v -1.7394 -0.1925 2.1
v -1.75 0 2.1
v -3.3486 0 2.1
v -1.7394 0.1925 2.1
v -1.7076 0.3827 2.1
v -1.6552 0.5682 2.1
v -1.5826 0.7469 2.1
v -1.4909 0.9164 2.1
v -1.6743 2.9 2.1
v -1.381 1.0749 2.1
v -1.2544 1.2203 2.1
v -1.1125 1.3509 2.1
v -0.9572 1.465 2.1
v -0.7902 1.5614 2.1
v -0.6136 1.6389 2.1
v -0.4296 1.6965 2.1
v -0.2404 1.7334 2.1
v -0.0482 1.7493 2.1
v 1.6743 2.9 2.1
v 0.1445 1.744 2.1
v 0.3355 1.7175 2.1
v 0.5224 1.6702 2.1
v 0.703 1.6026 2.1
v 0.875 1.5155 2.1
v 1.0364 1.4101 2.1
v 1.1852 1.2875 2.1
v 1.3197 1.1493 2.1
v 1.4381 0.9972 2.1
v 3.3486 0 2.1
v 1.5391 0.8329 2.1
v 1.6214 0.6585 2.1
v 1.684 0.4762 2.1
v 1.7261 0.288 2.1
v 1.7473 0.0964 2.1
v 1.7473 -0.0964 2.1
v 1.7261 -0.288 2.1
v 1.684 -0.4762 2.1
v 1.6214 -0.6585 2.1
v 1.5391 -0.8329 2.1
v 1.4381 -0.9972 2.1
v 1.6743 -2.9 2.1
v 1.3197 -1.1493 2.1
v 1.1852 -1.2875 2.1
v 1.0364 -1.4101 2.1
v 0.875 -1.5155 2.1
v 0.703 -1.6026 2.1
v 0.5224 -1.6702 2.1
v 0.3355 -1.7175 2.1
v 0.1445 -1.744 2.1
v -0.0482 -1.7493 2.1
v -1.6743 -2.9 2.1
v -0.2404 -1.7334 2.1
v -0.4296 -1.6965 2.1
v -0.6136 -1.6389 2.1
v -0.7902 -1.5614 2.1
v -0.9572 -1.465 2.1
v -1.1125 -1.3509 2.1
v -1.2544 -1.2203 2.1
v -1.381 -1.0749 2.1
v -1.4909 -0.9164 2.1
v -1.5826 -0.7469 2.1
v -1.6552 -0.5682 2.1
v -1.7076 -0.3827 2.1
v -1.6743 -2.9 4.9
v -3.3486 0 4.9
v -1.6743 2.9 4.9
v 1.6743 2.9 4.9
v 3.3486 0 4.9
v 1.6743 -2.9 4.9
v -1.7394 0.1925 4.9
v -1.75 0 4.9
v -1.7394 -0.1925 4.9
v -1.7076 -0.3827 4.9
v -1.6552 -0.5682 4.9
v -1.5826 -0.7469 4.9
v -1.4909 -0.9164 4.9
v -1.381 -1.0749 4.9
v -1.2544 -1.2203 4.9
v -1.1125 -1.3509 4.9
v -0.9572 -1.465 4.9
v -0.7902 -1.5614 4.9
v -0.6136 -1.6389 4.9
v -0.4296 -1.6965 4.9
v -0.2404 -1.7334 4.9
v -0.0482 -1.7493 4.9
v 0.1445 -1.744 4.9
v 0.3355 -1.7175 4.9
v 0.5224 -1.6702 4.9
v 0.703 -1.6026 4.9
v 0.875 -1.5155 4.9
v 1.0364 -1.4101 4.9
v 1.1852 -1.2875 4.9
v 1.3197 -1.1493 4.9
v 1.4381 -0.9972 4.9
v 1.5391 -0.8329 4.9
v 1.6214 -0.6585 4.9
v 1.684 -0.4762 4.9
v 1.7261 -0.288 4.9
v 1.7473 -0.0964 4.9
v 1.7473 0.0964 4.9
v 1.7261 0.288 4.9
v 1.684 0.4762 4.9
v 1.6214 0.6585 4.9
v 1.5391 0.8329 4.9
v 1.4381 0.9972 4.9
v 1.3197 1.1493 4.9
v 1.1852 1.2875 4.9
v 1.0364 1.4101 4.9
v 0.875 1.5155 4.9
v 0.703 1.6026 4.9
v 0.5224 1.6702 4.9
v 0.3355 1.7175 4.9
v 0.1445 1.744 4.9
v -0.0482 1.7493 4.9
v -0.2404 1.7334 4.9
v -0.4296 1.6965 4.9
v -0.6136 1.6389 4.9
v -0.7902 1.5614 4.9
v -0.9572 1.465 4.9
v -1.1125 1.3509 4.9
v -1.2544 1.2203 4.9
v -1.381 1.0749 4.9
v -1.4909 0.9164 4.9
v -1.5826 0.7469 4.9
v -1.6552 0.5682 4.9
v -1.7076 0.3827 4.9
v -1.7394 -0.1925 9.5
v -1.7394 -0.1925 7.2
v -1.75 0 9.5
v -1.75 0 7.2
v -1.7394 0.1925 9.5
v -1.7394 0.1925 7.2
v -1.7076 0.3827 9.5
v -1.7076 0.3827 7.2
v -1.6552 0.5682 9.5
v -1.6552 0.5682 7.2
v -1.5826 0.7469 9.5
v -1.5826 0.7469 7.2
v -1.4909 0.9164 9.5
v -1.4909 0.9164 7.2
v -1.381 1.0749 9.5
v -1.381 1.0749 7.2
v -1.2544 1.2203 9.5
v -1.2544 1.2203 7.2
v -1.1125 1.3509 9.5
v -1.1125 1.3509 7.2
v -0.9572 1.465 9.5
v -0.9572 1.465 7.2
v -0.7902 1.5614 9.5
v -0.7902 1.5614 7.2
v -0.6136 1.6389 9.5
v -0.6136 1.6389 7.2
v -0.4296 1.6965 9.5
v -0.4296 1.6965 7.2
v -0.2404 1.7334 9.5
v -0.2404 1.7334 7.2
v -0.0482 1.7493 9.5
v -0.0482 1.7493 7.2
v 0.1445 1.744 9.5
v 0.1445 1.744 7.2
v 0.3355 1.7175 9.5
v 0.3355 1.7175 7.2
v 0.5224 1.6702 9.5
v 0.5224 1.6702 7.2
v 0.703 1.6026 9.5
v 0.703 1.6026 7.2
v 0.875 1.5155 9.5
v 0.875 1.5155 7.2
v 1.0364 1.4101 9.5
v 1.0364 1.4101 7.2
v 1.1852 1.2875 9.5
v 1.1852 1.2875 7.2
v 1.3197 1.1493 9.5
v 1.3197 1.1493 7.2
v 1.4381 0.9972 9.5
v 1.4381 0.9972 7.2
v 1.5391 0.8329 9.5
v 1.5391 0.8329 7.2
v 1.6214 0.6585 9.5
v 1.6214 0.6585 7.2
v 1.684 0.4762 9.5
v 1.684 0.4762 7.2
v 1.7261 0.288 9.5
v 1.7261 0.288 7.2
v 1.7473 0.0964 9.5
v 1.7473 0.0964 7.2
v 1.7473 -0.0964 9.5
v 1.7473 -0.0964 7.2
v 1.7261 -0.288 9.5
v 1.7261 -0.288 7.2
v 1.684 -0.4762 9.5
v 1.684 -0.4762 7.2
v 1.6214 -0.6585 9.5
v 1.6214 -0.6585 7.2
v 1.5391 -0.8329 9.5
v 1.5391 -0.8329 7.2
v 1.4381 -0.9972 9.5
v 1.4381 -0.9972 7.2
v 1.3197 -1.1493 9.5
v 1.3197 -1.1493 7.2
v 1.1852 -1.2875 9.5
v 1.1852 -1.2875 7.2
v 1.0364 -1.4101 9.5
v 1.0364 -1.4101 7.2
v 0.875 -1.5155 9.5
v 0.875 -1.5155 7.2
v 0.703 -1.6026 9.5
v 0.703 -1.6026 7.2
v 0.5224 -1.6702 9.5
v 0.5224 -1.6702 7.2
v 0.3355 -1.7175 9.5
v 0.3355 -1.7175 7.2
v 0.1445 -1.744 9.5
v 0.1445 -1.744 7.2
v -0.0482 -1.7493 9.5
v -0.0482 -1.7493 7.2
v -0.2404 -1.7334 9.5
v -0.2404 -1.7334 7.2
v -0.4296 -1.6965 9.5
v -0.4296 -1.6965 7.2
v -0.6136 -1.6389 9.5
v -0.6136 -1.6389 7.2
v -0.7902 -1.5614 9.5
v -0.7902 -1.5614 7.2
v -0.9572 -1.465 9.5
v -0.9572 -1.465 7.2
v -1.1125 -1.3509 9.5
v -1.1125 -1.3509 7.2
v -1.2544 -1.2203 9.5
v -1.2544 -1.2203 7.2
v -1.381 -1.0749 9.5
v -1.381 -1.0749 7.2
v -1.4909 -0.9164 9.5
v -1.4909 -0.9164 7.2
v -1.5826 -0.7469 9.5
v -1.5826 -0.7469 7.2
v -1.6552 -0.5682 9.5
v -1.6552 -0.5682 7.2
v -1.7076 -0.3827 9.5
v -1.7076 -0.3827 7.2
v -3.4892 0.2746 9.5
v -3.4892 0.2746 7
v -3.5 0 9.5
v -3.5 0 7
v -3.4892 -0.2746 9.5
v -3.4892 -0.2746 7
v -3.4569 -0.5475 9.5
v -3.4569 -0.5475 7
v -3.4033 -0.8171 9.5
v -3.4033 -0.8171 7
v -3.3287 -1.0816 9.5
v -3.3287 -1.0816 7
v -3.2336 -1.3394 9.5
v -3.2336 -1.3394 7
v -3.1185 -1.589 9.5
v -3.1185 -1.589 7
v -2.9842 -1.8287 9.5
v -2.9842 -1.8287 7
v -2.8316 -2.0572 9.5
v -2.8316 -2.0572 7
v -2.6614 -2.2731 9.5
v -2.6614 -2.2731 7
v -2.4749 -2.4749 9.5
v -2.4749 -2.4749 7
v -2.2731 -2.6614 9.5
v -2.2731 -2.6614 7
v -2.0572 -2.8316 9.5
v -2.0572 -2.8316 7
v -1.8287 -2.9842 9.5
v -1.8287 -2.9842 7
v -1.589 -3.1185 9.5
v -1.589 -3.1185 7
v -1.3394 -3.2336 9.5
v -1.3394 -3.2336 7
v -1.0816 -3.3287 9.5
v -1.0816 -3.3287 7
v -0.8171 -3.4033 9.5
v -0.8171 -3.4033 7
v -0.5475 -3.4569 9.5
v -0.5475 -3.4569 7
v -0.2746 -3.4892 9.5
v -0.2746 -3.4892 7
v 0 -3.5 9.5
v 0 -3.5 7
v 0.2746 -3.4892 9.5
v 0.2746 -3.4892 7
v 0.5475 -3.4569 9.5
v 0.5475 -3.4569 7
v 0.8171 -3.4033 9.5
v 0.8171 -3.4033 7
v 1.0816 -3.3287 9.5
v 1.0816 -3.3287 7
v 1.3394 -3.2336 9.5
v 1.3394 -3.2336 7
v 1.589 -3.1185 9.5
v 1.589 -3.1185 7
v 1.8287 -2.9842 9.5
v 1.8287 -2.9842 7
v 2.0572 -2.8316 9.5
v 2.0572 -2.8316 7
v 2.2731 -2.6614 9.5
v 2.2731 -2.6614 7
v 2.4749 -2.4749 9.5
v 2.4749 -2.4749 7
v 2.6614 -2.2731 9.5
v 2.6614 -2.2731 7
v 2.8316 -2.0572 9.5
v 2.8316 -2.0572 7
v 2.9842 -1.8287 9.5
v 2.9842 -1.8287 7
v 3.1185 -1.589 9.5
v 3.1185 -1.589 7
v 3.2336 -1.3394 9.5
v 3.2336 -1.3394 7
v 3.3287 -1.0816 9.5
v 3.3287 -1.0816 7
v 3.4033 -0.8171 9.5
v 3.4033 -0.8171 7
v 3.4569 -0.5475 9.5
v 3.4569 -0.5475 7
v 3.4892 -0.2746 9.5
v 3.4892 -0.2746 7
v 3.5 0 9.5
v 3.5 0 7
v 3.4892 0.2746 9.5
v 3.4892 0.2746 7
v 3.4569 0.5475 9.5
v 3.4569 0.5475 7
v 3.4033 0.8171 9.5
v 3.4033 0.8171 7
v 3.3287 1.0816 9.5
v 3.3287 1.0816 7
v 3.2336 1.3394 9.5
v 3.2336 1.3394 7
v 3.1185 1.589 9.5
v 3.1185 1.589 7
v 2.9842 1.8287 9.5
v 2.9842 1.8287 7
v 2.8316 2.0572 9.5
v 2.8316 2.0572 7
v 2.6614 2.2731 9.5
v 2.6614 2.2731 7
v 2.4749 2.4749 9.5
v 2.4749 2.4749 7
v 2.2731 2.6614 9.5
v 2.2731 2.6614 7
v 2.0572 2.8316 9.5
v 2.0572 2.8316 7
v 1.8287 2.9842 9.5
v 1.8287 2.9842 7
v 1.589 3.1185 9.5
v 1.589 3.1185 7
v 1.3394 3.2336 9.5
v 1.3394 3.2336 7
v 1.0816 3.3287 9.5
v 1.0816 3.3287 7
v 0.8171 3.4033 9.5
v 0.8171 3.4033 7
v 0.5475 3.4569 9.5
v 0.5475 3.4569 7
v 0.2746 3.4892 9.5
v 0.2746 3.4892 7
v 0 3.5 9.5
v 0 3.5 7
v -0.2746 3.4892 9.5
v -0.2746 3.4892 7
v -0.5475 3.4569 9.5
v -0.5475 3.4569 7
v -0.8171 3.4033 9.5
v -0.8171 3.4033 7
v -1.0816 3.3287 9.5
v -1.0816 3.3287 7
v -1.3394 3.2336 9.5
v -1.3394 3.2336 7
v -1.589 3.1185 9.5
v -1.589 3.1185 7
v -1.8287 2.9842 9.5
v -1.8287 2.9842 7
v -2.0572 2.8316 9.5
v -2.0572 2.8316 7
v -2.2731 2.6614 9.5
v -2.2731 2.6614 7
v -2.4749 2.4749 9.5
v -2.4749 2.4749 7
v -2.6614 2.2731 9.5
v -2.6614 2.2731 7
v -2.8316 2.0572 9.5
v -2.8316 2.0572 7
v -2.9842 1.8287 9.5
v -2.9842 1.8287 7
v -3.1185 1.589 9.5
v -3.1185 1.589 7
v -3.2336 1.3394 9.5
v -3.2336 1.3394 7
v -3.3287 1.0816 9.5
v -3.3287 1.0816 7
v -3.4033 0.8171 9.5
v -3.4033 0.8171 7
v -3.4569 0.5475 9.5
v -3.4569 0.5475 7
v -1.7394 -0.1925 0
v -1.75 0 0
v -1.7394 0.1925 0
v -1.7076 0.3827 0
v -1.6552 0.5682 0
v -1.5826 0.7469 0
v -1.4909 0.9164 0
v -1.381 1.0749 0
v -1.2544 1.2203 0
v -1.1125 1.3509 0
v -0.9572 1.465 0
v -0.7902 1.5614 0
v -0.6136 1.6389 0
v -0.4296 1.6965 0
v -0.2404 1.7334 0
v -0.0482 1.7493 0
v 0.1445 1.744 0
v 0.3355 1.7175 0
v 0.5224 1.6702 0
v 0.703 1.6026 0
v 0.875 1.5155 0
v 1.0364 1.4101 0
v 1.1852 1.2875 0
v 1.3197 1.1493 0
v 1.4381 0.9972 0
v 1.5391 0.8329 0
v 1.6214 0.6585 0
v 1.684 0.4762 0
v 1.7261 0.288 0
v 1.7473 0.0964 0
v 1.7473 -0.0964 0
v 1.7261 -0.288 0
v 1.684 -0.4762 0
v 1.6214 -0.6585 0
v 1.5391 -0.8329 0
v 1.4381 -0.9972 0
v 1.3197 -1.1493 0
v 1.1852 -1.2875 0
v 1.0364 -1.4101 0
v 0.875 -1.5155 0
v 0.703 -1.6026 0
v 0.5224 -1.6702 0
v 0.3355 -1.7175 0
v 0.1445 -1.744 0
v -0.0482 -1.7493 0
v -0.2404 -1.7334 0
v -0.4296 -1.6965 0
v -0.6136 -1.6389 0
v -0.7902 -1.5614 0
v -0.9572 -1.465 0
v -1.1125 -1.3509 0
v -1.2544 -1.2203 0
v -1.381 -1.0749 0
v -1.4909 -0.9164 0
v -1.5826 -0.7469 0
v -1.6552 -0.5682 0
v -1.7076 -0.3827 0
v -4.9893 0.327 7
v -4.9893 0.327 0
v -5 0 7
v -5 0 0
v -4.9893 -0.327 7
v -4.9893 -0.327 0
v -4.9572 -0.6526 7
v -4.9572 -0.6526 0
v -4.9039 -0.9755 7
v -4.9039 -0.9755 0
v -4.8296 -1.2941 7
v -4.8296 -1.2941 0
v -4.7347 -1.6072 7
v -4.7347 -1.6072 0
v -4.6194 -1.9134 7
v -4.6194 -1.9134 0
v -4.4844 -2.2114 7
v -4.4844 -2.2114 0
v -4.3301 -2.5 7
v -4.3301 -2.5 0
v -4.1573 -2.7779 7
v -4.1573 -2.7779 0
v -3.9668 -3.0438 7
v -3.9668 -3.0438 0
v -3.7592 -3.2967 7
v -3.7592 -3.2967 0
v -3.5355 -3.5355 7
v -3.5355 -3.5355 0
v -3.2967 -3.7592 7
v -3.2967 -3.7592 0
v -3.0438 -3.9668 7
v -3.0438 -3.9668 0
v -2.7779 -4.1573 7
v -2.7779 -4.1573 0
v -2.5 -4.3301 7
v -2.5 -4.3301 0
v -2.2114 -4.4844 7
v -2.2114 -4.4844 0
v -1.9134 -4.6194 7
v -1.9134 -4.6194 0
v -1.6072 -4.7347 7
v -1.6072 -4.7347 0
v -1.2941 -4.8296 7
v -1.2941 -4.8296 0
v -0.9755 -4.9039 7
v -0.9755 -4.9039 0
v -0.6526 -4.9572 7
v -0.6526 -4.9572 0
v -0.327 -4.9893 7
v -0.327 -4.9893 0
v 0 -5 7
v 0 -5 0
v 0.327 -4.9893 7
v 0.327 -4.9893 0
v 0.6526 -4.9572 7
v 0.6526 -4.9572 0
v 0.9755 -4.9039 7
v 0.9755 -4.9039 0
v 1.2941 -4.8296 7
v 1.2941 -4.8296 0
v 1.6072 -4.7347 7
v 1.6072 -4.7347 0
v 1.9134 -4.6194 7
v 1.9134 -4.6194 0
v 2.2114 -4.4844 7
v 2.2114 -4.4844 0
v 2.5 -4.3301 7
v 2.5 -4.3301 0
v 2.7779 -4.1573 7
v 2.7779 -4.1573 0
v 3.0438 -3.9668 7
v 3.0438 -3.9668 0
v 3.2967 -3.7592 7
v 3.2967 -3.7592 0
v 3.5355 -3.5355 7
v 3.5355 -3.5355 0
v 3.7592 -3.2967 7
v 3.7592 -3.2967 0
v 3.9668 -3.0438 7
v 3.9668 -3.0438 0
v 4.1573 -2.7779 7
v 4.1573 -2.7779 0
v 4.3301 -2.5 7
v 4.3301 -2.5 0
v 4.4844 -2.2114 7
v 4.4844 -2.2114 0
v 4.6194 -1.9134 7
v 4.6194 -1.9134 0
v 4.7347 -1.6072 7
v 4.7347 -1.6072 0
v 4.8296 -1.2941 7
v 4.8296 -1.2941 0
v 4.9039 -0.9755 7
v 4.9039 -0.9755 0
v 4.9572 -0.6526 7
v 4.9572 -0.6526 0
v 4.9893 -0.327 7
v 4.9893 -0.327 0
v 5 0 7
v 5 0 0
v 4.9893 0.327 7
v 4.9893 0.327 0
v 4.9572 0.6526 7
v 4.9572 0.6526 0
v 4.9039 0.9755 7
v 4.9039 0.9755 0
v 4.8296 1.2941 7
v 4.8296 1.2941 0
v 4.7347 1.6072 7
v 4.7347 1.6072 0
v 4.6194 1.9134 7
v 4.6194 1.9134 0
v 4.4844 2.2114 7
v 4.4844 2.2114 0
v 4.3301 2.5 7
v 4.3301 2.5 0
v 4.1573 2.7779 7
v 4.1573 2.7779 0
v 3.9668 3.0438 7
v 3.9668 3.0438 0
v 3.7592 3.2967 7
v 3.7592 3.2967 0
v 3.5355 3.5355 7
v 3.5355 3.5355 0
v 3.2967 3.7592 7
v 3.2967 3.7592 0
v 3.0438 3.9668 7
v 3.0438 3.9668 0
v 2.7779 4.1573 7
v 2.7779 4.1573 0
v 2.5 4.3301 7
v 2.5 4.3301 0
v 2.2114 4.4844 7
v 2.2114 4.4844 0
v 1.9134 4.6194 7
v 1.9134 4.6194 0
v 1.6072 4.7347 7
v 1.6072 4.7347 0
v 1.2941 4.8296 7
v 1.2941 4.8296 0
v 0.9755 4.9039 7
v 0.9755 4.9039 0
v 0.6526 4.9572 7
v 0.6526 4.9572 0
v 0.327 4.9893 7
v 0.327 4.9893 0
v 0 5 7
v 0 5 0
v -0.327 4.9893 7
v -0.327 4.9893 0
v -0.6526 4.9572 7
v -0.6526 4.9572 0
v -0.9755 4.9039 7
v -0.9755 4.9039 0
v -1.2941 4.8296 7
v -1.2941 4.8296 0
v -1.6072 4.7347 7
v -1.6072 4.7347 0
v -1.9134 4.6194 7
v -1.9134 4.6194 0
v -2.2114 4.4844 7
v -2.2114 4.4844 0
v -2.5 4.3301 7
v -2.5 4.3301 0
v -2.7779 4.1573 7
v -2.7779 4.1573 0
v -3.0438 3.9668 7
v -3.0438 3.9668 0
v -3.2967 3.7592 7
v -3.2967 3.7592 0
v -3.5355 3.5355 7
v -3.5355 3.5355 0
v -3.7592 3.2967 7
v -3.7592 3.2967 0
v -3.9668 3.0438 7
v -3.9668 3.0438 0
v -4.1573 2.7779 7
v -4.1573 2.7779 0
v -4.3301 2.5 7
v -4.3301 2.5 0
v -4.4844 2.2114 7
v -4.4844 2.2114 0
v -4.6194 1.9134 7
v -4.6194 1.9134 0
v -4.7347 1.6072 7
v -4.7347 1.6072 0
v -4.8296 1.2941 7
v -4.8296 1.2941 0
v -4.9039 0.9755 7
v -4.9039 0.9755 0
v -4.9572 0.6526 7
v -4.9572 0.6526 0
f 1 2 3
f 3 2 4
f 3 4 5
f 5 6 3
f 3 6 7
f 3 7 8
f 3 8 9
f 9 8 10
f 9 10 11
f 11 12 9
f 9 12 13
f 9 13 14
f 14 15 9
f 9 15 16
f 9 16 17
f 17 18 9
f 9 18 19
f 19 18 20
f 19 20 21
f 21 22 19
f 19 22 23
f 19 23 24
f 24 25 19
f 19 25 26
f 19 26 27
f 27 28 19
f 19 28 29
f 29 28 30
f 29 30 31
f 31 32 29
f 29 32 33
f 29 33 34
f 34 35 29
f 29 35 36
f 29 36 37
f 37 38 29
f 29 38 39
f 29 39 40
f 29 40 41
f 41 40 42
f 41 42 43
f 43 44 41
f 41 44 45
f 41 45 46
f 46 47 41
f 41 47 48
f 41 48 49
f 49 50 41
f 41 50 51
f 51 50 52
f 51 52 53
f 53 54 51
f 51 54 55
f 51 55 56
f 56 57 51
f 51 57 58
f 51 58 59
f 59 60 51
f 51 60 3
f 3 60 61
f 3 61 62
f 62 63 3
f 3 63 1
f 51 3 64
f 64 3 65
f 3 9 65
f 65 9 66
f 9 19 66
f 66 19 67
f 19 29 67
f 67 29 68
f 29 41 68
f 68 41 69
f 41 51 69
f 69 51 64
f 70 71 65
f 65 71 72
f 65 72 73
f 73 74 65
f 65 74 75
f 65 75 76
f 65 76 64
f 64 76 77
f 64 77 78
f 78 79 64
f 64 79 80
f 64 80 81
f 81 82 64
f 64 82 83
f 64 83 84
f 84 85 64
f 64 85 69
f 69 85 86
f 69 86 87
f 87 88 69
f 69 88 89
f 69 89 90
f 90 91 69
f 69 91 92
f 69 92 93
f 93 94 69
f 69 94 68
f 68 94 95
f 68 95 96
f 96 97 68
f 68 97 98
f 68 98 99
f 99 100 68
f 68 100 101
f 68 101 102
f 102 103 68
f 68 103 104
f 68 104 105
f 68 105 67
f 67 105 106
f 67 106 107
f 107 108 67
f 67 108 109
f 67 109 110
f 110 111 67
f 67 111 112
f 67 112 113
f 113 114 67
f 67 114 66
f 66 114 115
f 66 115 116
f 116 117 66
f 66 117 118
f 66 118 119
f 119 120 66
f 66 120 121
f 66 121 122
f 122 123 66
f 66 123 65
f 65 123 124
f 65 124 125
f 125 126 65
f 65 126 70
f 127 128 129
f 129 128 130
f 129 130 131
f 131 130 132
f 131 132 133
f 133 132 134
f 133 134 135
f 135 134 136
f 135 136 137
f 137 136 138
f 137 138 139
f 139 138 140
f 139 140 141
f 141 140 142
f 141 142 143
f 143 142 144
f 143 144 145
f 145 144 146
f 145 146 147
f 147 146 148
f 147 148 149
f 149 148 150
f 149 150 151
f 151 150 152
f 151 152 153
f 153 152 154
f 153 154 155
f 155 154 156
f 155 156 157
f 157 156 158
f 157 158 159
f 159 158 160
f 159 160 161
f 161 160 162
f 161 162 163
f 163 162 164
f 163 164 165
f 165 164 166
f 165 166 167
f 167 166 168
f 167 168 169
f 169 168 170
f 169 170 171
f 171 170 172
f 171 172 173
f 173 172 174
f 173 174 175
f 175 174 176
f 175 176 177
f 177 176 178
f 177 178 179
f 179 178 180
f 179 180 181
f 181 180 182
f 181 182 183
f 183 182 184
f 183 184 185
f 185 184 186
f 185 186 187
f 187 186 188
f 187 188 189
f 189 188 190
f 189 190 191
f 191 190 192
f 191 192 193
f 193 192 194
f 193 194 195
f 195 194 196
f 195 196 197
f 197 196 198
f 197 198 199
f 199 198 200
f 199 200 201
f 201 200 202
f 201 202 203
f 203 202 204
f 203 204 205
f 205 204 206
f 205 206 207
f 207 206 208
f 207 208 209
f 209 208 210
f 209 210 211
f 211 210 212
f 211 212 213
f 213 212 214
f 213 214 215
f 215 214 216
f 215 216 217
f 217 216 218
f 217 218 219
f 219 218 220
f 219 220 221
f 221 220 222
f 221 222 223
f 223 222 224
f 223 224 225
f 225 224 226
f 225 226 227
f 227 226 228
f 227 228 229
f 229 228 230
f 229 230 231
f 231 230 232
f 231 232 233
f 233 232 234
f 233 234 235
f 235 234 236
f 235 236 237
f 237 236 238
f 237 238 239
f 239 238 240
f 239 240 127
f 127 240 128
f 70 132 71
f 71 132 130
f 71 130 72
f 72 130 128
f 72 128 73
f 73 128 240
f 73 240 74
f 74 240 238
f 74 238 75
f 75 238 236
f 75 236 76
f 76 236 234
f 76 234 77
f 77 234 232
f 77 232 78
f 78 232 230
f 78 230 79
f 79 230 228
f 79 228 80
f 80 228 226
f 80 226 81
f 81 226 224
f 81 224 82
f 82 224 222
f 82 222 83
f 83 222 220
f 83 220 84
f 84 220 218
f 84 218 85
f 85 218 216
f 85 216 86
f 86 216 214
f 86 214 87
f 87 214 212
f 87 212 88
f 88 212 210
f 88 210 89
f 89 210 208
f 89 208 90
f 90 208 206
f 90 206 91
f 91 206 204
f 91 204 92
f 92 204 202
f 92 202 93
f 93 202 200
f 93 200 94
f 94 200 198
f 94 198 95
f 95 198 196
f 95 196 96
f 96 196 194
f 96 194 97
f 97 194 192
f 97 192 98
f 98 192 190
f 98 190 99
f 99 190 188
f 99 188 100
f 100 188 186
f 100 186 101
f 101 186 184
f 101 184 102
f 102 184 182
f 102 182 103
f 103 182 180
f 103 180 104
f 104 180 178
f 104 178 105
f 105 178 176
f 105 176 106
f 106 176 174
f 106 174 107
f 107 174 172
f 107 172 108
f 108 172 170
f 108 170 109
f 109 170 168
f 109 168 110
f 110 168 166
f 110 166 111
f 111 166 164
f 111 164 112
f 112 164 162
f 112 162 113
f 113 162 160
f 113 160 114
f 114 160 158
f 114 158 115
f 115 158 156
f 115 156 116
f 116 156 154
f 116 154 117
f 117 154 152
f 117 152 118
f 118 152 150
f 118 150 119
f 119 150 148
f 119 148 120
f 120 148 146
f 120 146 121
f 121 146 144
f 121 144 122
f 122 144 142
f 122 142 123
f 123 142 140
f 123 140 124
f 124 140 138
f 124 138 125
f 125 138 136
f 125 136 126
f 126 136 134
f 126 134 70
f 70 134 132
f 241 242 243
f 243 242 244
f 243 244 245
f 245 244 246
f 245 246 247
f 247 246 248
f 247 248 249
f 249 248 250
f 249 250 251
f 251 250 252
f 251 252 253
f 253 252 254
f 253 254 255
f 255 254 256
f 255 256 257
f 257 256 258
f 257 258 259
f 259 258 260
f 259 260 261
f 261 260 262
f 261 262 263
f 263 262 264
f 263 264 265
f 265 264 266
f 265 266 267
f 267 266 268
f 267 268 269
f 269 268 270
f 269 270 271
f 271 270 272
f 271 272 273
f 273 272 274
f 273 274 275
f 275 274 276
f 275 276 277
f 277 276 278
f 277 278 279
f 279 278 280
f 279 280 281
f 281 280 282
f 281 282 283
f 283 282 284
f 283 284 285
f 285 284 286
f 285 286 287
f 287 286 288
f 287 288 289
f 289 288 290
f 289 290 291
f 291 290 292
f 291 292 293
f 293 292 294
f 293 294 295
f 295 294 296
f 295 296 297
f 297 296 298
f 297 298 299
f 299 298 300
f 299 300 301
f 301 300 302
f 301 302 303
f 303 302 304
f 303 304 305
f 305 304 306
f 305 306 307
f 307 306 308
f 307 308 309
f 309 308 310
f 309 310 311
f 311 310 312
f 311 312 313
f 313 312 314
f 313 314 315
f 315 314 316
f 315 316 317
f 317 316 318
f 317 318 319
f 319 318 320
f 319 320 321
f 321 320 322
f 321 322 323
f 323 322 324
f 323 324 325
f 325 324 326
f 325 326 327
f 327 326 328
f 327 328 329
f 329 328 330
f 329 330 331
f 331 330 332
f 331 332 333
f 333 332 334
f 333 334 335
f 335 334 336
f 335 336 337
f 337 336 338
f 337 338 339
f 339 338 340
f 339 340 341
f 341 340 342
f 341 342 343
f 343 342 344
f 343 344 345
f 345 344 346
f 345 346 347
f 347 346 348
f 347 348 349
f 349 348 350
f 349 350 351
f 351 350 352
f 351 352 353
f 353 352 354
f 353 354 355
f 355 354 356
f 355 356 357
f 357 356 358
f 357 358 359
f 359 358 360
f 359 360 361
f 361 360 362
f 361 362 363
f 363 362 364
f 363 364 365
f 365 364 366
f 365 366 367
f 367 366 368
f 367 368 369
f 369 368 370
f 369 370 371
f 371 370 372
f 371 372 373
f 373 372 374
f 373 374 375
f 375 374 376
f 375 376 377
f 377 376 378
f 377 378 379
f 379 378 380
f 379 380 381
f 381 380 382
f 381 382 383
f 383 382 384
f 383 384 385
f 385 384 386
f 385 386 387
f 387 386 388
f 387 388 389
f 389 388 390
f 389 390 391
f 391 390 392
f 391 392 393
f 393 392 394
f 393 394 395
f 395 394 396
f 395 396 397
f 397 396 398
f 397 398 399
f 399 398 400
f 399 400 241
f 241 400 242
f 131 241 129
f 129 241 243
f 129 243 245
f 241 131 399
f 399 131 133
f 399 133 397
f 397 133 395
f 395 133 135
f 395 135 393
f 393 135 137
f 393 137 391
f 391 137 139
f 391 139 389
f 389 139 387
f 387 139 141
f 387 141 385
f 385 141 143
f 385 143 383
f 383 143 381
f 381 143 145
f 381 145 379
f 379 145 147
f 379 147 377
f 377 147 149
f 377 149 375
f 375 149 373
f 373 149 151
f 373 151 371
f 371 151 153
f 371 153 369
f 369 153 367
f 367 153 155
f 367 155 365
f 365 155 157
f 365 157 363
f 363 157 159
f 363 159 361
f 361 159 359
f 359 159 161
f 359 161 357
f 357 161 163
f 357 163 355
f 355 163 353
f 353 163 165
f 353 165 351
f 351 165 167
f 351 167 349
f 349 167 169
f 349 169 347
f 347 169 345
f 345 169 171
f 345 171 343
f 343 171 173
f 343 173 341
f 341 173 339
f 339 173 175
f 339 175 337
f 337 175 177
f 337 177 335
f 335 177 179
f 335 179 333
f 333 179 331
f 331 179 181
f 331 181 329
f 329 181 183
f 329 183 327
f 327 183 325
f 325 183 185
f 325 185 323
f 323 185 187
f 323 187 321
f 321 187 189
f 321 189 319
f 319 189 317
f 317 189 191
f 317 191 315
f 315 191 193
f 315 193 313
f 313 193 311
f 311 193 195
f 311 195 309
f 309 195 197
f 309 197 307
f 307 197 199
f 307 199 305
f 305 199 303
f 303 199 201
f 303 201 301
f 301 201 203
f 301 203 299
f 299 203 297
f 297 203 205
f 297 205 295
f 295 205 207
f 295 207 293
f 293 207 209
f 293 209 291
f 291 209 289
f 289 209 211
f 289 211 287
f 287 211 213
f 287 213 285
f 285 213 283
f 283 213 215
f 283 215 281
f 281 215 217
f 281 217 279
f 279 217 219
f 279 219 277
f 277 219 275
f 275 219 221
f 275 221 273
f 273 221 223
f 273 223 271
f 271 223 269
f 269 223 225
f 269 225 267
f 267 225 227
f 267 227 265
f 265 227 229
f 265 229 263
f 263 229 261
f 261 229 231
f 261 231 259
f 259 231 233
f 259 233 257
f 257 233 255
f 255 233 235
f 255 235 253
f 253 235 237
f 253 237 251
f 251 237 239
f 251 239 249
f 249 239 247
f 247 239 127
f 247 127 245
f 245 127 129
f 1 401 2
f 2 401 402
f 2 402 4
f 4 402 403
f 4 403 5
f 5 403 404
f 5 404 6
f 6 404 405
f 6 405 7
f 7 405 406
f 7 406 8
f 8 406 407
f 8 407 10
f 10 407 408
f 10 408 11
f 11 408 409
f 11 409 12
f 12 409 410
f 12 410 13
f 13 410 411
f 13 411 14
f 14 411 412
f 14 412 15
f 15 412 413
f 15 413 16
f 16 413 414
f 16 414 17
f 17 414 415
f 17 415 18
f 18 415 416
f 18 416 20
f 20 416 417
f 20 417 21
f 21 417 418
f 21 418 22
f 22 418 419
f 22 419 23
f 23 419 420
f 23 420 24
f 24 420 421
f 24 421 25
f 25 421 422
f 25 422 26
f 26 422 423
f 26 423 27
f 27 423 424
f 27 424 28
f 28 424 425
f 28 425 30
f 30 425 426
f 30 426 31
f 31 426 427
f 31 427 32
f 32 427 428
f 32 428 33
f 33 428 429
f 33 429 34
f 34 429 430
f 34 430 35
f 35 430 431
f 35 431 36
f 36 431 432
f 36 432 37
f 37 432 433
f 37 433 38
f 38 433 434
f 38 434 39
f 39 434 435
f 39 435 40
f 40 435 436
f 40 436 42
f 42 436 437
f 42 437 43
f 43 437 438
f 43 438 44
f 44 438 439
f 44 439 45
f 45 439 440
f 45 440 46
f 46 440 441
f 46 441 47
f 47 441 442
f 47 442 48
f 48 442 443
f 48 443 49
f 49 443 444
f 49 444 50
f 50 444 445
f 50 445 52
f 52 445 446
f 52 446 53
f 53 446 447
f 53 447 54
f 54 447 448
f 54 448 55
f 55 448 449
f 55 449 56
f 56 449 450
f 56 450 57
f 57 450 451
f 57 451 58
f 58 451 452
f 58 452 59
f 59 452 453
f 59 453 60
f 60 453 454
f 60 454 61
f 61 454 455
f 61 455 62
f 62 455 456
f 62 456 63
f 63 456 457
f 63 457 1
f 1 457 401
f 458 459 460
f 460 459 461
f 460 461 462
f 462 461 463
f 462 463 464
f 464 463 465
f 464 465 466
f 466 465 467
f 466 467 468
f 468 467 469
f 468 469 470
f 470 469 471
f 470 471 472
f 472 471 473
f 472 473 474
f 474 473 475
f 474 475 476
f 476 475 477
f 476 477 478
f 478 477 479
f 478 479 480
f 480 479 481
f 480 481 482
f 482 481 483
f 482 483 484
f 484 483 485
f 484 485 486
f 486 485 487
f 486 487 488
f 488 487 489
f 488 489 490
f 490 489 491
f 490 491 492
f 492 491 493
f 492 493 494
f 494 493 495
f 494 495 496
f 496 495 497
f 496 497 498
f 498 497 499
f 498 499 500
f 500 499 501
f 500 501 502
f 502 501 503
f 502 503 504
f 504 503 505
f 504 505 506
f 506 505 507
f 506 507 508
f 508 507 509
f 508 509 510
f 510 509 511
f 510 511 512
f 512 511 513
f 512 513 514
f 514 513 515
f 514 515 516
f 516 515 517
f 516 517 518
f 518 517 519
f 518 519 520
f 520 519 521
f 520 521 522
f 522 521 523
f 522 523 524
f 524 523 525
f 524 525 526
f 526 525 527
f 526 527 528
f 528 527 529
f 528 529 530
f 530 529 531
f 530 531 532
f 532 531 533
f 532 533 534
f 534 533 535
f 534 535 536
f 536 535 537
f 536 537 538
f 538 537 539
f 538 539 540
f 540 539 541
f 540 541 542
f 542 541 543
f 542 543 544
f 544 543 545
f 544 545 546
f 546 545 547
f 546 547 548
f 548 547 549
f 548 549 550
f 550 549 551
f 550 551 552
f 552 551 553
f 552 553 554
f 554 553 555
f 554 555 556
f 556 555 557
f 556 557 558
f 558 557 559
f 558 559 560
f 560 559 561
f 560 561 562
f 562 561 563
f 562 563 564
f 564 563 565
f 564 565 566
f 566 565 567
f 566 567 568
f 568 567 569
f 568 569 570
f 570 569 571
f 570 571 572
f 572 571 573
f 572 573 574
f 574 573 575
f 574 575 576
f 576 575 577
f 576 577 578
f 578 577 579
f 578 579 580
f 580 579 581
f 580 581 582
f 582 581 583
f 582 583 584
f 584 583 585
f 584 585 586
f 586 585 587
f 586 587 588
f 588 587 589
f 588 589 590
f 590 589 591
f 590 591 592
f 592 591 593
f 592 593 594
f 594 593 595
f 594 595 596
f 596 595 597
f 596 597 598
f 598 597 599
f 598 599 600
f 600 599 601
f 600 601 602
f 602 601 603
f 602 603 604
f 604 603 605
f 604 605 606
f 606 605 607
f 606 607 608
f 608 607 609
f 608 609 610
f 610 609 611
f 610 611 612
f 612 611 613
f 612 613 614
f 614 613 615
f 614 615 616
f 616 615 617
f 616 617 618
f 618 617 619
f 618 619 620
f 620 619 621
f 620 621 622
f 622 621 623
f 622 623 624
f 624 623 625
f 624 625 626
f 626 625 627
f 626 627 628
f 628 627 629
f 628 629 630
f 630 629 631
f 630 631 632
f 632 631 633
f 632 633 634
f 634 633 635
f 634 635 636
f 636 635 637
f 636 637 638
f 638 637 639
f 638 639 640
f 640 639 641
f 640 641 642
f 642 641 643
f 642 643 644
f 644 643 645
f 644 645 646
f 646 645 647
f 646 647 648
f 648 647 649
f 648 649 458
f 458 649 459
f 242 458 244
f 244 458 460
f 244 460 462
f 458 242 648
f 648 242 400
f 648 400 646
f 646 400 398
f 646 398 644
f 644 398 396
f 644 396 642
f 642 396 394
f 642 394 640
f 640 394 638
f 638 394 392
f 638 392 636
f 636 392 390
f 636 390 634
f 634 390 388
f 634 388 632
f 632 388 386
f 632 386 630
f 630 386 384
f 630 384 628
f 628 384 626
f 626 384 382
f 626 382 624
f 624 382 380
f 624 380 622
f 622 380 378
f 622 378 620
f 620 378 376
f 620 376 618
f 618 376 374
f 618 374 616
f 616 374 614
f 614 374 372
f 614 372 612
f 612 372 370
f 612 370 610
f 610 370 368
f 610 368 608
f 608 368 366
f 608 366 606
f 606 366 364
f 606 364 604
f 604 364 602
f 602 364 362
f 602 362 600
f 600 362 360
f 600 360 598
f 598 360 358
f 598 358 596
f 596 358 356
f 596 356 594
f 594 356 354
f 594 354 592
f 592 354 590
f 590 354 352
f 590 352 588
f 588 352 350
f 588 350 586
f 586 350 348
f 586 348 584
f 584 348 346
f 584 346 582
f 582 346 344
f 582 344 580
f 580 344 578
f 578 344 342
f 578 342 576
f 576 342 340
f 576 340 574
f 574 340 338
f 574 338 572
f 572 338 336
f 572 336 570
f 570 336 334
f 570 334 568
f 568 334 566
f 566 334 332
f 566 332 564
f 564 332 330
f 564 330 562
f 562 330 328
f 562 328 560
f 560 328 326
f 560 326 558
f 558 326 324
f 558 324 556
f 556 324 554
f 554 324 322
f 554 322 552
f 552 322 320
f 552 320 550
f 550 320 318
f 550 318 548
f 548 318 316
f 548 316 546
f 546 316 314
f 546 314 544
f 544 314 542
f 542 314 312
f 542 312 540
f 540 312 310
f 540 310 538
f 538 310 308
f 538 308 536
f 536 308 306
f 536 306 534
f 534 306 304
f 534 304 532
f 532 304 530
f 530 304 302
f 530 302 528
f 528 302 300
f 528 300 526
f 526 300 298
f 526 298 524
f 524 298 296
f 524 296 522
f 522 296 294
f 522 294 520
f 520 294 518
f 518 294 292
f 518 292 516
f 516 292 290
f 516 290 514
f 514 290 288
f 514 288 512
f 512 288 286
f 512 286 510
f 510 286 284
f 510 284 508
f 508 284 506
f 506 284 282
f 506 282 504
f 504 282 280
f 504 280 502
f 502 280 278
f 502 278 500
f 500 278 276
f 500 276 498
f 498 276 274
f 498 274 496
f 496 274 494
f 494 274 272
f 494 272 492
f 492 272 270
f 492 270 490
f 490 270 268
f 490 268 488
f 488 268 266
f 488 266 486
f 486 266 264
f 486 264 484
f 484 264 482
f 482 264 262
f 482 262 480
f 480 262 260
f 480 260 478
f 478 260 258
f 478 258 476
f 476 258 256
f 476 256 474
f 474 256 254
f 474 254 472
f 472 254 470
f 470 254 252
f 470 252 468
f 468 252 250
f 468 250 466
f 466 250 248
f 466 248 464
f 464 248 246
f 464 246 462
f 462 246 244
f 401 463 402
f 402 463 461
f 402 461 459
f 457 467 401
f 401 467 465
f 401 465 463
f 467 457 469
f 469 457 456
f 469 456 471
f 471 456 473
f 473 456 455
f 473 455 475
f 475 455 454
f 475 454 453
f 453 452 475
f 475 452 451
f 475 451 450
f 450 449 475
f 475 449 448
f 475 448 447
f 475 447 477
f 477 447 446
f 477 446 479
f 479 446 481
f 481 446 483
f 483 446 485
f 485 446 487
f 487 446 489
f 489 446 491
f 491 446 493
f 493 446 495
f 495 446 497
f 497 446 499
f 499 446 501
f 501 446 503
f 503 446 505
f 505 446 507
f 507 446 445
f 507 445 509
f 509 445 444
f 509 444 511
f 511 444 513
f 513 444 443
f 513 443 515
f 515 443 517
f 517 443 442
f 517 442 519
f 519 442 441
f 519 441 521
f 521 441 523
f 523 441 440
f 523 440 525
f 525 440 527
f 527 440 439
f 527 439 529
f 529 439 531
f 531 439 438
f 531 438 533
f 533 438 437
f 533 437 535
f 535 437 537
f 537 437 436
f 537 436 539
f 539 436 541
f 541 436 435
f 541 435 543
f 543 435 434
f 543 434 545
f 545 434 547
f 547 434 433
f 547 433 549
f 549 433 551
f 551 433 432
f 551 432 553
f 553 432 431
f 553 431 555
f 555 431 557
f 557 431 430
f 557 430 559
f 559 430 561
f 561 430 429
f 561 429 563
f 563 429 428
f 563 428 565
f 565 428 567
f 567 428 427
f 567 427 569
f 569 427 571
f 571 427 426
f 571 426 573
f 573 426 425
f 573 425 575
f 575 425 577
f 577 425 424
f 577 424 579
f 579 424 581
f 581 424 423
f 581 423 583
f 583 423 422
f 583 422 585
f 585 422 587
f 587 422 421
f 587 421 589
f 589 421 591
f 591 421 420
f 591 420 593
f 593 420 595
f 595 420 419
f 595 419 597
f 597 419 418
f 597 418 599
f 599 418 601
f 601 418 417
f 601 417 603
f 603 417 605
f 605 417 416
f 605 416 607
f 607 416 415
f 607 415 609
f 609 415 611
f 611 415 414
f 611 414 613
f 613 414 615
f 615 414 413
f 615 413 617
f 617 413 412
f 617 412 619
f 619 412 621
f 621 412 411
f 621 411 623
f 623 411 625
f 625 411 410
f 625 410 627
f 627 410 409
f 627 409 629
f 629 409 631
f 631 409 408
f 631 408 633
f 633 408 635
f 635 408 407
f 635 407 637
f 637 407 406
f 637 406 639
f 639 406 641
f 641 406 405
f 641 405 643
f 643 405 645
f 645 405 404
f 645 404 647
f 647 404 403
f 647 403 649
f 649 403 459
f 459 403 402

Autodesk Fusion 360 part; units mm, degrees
sketch "Skizze1" plane through (0, 0, 0) normal (0, 0, 1) x (1, 0, 0)
  line L0 (-31.5508, 0) -> (33.8224, 0) construction
  line L1 (0, 25.6192) -> (0, -38.4919) construction
  circle A0 centre (0, 0) radius 1.75
  circle A1 centre (0, 0) radius 3.5
  circle A2 centre (0, 0) radius 5
  dimension "d1" = 3.5
  dimension "d2" = 7
  dimension "d3" = 10
extrude "Extrusion1" add sketch "Skizze1" along normal blind 7 contours A1 | A2
extrude "Extrusion2" add sketch "Skizze1" along normal blind 9.5 contours A1
ref_plane "Arbeitsebene1" through (0, 0, 3.5) normal (0, 0, 1) x (1, 0, 0)
sketch "Skizze2" plane through (0, 0, 3.5) normal (0, 0, 1) x (1, 0, 0)
  line L0 (-11, 0) -> (19, 0) construction
  line L1 (0, 16) -> (0, -23) construction
  line L2 (1.6743, -2.9) -> (3.3486, 0)
  line L3 (3.3486, 0) -> (1.6743, 2.9)
  line L4 (1.6743, 2.9) -> (-1.6743, 2.9)
  line L5 (-1.6743, 2.9) -> (-3.3486, 0)
  line L6 (-3.3486, 0) -> (-1.6743, -2.9)
  line L7 (-1.6743, -2.9) -> (1.6743, -2.9)
  dimension "d9" = 5.8
extrude "Extrusion3" cut sketch "Skizze2" along normal mid plane 2.8
